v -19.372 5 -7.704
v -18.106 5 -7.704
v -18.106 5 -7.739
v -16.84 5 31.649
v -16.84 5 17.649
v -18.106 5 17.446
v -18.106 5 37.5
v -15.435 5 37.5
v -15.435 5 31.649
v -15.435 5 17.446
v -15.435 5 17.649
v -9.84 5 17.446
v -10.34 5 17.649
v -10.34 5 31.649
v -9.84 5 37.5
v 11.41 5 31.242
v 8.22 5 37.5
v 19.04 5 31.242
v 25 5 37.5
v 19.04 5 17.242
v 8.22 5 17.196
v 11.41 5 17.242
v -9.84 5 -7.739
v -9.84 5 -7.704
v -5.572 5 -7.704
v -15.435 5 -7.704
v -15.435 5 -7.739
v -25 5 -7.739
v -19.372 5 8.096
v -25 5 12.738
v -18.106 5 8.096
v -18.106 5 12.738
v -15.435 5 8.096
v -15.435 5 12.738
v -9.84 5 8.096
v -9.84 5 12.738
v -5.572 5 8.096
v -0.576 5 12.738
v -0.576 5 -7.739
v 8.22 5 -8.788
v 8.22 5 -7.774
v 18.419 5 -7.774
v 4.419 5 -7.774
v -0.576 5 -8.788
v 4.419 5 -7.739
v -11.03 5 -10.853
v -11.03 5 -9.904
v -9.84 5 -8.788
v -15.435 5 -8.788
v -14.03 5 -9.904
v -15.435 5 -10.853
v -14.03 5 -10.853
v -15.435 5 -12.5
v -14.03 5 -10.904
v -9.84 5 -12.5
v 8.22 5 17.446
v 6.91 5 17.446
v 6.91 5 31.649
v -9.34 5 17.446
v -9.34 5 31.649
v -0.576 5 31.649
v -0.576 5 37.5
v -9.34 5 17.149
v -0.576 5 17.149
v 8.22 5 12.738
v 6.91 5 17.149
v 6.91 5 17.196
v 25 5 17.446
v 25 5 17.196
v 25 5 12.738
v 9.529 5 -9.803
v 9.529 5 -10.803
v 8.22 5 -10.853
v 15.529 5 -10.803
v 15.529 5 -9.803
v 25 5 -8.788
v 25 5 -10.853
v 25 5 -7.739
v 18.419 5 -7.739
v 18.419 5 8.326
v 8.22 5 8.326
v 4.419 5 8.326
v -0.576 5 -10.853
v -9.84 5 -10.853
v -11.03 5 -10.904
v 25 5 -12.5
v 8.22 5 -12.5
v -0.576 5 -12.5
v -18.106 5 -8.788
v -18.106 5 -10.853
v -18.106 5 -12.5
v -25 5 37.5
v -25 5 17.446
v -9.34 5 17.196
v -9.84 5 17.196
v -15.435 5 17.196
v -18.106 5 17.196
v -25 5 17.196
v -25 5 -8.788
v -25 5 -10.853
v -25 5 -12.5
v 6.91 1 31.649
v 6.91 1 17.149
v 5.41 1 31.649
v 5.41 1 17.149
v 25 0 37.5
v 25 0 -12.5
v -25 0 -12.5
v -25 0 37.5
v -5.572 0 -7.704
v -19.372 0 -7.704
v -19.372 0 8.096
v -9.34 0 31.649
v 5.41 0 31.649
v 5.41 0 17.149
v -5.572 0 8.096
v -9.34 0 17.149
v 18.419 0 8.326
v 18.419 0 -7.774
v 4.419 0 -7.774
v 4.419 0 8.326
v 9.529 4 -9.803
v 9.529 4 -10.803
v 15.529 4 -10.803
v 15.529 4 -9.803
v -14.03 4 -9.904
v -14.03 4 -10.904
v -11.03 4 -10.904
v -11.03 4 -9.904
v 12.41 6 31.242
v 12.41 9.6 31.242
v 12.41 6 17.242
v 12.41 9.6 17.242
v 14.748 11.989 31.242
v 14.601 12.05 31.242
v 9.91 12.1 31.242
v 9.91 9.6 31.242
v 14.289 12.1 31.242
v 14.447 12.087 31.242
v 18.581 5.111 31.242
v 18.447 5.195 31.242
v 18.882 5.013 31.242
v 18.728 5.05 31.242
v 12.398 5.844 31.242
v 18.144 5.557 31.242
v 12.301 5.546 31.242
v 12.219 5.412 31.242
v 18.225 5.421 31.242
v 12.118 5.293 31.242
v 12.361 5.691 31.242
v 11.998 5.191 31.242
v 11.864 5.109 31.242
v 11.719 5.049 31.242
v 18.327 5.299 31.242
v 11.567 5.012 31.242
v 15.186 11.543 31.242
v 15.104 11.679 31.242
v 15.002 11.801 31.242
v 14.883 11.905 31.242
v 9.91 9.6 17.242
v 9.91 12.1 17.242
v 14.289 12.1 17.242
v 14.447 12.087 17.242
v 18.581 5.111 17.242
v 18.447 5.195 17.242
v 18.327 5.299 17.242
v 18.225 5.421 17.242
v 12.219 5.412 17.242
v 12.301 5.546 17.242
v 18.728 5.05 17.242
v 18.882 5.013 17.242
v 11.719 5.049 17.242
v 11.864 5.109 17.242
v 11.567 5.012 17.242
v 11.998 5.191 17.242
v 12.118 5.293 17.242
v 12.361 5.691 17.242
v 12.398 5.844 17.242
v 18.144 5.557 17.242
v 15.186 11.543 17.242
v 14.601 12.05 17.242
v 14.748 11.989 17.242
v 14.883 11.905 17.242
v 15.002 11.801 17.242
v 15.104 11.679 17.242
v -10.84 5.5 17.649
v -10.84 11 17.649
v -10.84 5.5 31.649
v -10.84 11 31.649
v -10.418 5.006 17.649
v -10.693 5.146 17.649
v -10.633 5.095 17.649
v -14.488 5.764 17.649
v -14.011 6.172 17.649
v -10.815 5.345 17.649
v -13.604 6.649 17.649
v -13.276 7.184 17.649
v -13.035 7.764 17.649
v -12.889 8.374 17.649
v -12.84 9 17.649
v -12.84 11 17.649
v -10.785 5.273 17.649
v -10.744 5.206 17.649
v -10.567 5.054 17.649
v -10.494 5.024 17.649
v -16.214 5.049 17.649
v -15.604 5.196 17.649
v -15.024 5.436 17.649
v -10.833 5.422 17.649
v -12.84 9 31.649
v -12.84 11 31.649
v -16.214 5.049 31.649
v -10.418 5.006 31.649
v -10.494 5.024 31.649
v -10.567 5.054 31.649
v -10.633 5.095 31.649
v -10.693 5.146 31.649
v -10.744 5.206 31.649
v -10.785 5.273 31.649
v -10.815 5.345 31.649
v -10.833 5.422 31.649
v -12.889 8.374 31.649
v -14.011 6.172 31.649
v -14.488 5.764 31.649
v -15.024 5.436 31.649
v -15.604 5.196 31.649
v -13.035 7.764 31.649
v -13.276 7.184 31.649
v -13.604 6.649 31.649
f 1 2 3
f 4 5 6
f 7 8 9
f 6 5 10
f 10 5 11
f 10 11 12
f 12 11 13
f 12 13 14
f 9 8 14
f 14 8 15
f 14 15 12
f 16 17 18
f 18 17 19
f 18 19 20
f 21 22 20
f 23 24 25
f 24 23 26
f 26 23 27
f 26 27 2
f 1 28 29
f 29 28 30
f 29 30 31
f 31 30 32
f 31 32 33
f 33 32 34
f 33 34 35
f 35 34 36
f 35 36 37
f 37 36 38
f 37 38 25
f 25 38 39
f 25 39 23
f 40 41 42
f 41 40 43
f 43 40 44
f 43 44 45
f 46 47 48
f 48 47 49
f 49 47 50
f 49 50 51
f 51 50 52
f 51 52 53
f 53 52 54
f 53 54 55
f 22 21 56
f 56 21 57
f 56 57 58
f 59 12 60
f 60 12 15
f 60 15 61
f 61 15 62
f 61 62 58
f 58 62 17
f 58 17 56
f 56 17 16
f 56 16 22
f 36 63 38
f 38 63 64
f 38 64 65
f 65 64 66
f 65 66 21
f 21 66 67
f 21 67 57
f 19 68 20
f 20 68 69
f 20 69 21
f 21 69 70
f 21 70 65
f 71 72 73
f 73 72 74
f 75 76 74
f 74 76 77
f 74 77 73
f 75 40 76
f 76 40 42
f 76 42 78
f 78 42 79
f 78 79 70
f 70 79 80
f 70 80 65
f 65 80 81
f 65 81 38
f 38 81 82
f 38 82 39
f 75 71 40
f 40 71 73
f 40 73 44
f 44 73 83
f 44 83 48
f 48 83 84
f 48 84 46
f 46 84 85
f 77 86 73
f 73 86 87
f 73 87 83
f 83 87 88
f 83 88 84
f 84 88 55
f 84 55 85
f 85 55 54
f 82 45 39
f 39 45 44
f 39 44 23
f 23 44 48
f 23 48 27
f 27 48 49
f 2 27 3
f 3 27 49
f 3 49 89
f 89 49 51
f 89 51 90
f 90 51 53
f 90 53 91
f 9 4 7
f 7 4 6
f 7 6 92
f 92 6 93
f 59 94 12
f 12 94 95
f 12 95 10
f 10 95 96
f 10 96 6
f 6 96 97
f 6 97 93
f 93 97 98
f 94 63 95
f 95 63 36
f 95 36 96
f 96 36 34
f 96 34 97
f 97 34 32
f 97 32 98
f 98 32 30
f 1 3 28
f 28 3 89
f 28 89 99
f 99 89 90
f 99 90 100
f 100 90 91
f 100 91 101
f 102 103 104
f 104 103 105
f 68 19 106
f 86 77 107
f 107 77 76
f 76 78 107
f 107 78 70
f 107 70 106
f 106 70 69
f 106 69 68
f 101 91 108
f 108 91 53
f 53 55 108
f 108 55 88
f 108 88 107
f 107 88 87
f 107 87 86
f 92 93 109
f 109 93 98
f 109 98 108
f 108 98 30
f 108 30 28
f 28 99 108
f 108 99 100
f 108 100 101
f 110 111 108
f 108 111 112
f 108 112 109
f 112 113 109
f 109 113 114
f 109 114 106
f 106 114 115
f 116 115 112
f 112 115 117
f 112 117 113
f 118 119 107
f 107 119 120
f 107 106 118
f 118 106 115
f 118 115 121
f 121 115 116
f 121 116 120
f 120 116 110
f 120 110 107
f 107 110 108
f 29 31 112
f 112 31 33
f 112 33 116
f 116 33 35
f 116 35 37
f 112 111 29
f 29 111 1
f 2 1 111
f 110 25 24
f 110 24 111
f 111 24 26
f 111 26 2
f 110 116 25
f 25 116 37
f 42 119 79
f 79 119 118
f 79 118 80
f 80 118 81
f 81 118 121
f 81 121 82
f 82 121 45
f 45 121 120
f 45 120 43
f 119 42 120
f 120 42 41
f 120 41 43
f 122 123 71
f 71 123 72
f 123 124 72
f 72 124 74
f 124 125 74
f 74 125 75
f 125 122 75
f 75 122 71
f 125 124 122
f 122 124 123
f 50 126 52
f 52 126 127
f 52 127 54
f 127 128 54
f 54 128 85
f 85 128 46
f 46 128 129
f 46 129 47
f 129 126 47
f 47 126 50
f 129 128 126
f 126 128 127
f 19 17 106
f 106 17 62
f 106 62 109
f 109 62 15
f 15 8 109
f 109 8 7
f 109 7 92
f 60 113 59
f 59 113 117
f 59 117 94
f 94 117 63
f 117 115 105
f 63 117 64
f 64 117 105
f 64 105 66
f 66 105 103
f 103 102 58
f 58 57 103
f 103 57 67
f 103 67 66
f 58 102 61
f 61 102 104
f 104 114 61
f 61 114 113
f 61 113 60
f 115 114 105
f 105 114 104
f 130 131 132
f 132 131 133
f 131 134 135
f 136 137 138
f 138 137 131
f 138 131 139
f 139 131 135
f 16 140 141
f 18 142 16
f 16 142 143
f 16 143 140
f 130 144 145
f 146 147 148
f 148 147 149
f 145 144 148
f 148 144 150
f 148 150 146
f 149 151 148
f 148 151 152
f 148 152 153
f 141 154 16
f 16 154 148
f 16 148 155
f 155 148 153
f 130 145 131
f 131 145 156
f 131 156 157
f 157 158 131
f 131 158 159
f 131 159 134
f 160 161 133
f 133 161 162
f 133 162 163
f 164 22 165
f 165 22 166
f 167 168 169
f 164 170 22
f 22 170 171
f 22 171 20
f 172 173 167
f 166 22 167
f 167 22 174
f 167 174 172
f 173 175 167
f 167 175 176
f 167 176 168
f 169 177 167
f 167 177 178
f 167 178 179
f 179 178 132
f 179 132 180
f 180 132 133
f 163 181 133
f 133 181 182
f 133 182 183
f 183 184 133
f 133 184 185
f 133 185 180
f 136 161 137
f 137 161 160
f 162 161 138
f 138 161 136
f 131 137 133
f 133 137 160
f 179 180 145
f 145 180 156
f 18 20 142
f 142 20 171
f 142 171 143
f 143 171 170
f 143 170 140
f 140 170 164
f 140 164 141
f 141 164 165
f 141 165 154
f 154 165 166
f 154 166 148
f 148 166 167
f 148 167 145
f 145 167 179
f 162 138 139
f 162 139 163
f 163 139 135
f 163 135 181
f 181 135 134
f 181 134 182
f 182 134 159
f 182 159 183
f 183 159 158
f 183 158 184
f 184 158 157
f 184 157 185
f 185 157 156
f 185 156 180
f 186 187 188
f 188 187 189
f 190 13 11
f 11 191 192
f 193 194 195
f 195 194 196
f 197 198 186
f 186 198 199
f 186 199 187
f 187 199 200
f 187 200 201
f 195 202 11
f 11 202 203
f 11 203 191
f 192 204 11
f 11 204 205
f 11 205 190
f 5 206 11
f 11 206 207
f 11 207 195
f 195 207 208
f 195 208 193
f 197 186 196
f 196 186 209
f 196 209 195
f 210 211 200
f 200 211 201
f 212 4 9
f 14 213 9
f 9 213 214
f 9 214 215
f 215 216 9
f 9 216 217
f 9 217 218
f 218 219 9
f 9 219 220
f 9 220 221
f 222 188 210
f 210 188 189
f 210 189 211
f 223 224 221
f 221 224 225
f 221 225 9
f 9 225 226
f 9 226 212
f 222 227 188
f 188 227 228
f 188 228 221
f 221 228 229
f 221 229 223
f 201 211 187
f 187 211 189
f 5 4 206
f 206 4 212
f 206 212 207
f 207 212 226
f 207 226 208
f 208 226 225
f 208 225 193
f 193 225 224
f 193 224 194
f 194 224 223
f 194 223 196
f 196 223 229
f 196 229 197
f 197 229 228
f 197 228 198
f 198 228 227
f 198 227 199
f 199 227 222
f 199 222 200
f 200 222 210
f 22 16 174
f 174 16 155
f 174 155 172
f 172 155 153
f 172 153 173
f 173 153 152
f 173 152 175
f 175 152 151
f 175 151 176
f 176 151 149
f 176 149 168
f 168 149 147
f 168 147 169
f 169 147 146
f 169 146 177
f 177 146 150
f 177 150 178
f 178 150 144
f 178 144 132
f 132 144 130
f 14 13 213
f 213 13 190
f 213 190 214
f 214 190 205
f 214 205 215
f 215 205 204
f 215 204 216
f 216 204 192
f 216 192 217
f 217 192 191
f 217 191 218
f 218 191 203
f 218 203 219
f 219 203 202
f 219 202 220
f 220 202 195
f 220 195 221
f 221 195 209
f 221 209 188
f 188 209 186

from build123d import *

# Parameters (mm, degrees)
SKETCH1_W           = 50
SKETCH1_H           = 25
BOSS_EXTRUDE1_DEPTH = 5
SKETCH2_W           = 13.8
SKETCH2_H           = 15.8
CUT_EXTRUDE1_DEPTH  = 5
SKETCH3_W           = 14
SKETCH3_H           = 16.1
CUT_EXTRUDE2_DEPTH  = 5
SKETCH5_W           = 3
SKETCH5_H           = 1
SKETCH5_W_2         = 6
CUT_EXTRUDE3_DEPTH  = 1
SKETCH6_W           = 50
SKETCH6_H           = 25
BOSS_EXTRUDE2_DEPTH = 5
SKETCH7_W           = 16.25
SKETCH7_H           = 14.5
CUT_EXTRUDE4_DEPTH  = 4
SKETCH8_W           = 14.75
SKETCH8_H           = 14.5
CUT_EXTRUDE5_DEPTH  = 1
SKETCH9_W           = 2.5
SKETCH9_H           = 14
BOSS_EXTRUDE3_DEPTH = 4.6
SKETCH10_W          = 5
SKETCH10_H          = 14
BOSS_EXTRUDE4_DEPTH = 2.5
BOSS_EXTRUDE5_DEPTH = 14
FILLET1_R           = 1
SKETCH12_W          = 2
SKETCH12_H          = 14
BOSS_EXTRUDE6_DEPTH = 6
FILLET2_R           = 4
FILLET3_R           = 1
FILLET4_R           = 0.5


with BuildPart() as part:
    # Sketch1 → Boss-Extrude1 (new body)
    with BuildSketch(Plane(origin=(0, 0, 0), x_dir=(1, 0, 0), z_dir=(0, 1, 0))):
        Rectangle(SKETCH1_W, SKETCH1_H)
    extrude(amount=BOSS_EXTRUDE1_DEPTH)

    # Sketch2 → Cut-Extrude1 (cut)
    with BuildSketch(Plane(origin=(0, 5, 0), x_dir=(1, 0, 0), z_dir=(0, 1, 0))):
        with Locations((-12.471632497, -0.196290121)):
            Rectangle(SKETCH2_W, SKETCH2_H)
    extrude(amount=-CUT_EXTRUDE1_DEPTH, mode=Mode.SUBTRACT)

    # Sketch3 → Cut-Extrude2 (cut)
    with BuildSketch(Plane(origin=(0, 5, 0), x_dir=(1, 0, 0), z_dir=(0, 1, 0))):
        with Locations((11.418853314, -0.27633095)):
            Rectangle(SKETCH3_W, SKETCH3_H)
    extrude(amount=-CUT_EXTRUDE2_DEPTH, mode=Mode.SUBTRACT)

    # Sketch5 → Cut-Extrude3 (cut)
    with BuildSketch(Plane(origin=(0, 5, 0), x_dir=(1, 0, 0), z_dir=(0, 1, 0))):
        with Locations((-12.529830787, 10.403858803)):
            Rectangle(SKETCH5_W, SKETCH5_H)
        with Locations((12.528710417, 10.30293358)):
            Rectangle(SKETCH5_W_2, SKETCH5_H)
    extrude(amount=-CUT_EXTRUDE3_DEPTH, mode=Mode.SUBTRACT)

    # Sketch6 → Boss-Extrude2 (add)
    with BuildSketch(Plane(origin=(0, 0, 0), x_dir=(1, 0, 0), z_dir=(0, 1, 0))):
        with Locations((0, -25)):
            Rectangle(SKETCH6_W, SKETCH6_H)
    extrude(amount=BOSS_EXTRUDE2_DEPTH)

    # Sketch7 → Cut-Extrude4 (cut)
    with BuildSketch(Plane(origin=(0, 5, 0), x_dir=(1, 0, 0), z_dir=(0, 1, 0))):
        with Locations((-1.214601825, -24.398968546)):
            Rectangle(SKETCH7_W, SKETCH7_H)
    extrude(amount=-CUT_EXTRUDE4_DEPTH, mode=Mode.SUBTRACT)

    # Sketch8 → Cut-Extrude5 (cut)
    with BuildSketch(Plane(origin=(0, 1, 0), x_dir=(1, 0, 0), z_dir=(0, 1, 0))):
        with Locations((-1.964601825, -24.398968546)):
            Rectangle(SKETCH8_W, SKETCH8_H)
    extrude(amount=-CUT_EXTRUDE5_DEPTH, mode=Mode.SUBTRACT)

    # Sketch9 → Boss-Extrude3 (add)
    with BuildSketch(Plane(origin=(0, 5, 0), x_dir=(1, 0, 0), z_dir=(0, 1, 0))):
        with Locations((13.660398175, -24.242407708)):
            Rectangle(SKETCH9_W, SKETCH9_H)
    extrude(amount=BOSS_EXTRUDE3_DEPTH)

    # Sketch10 → Boss-Extrude4 (add)
    with BuildSketch(Plane(origin=(0, 9.6, 0), x_dir=(1, 0, 0), z_dir=(0, 1, 0))):
        with Locations((12.410398175, -24.242407708)):
            Rectangle(SKETCH10_W, SKETCH10_H)
    extrude(amount=BOSS_EXTRUDE4_DEPTH)

    # Sketch11 → Boss-Extrude5 (add)
    with BuildSketch(Plane.XY.offset(31.242407708)):
        Polygon((14.910398175, 5), (18.418853314, 5), (14.910398175, 12.1), align=None)
    extrude(amount=-BOSS_EXTRUDE5_DEPTH)

    # Fillet1
    fillet1_edges = [part.edges().sort_by_distance(p)[0] for p in [
        (14.910398175, 12.1, 24.242407708),
        (18.418853314, 5, 24.242407708),
    ]]
    fillet(fillet1_edges, radius=FILLET1_R)

    # Sketch12 → Boss-Extrude6 (add)
    with BuildSketch(Plane(origin=(0, 5, 0), x_dir=(1, 0, 0), z_dir=(0, 1, 0))):
        with Locations((-11.839601825, -24.648968546)):
            Rectangle(SKETCH12_W, SKETCH12_H)
    extrude(amount=BOSS_EXTRUDE6_DEPTH)

    # Fillet2
    fillet2_edges = [part.edges().sort_by_distance(p)[0] for p in [
        (-12.839601825, 5, 24.648968546),
    ]]
    fillet(fillet2_edges, radius=FILLET2_R)

    # Fillet3
    fillet3_edges = [part.edges().sort_by_distance(p)[0] for p in [
        (12.410398175, 5, 24.242407708),
    ]]
    fillet(fillet3_edges, radius=FILLET3_R)

    # Fillet4
    fillet4_edges = [part.edges().sort_by_distance(p)[0] for p in [
        (-10.839601825, 5, 24.648968546),
    ]]
    fillet(fillet4_edges, radius=FILLET4_R)


solid = part.part
